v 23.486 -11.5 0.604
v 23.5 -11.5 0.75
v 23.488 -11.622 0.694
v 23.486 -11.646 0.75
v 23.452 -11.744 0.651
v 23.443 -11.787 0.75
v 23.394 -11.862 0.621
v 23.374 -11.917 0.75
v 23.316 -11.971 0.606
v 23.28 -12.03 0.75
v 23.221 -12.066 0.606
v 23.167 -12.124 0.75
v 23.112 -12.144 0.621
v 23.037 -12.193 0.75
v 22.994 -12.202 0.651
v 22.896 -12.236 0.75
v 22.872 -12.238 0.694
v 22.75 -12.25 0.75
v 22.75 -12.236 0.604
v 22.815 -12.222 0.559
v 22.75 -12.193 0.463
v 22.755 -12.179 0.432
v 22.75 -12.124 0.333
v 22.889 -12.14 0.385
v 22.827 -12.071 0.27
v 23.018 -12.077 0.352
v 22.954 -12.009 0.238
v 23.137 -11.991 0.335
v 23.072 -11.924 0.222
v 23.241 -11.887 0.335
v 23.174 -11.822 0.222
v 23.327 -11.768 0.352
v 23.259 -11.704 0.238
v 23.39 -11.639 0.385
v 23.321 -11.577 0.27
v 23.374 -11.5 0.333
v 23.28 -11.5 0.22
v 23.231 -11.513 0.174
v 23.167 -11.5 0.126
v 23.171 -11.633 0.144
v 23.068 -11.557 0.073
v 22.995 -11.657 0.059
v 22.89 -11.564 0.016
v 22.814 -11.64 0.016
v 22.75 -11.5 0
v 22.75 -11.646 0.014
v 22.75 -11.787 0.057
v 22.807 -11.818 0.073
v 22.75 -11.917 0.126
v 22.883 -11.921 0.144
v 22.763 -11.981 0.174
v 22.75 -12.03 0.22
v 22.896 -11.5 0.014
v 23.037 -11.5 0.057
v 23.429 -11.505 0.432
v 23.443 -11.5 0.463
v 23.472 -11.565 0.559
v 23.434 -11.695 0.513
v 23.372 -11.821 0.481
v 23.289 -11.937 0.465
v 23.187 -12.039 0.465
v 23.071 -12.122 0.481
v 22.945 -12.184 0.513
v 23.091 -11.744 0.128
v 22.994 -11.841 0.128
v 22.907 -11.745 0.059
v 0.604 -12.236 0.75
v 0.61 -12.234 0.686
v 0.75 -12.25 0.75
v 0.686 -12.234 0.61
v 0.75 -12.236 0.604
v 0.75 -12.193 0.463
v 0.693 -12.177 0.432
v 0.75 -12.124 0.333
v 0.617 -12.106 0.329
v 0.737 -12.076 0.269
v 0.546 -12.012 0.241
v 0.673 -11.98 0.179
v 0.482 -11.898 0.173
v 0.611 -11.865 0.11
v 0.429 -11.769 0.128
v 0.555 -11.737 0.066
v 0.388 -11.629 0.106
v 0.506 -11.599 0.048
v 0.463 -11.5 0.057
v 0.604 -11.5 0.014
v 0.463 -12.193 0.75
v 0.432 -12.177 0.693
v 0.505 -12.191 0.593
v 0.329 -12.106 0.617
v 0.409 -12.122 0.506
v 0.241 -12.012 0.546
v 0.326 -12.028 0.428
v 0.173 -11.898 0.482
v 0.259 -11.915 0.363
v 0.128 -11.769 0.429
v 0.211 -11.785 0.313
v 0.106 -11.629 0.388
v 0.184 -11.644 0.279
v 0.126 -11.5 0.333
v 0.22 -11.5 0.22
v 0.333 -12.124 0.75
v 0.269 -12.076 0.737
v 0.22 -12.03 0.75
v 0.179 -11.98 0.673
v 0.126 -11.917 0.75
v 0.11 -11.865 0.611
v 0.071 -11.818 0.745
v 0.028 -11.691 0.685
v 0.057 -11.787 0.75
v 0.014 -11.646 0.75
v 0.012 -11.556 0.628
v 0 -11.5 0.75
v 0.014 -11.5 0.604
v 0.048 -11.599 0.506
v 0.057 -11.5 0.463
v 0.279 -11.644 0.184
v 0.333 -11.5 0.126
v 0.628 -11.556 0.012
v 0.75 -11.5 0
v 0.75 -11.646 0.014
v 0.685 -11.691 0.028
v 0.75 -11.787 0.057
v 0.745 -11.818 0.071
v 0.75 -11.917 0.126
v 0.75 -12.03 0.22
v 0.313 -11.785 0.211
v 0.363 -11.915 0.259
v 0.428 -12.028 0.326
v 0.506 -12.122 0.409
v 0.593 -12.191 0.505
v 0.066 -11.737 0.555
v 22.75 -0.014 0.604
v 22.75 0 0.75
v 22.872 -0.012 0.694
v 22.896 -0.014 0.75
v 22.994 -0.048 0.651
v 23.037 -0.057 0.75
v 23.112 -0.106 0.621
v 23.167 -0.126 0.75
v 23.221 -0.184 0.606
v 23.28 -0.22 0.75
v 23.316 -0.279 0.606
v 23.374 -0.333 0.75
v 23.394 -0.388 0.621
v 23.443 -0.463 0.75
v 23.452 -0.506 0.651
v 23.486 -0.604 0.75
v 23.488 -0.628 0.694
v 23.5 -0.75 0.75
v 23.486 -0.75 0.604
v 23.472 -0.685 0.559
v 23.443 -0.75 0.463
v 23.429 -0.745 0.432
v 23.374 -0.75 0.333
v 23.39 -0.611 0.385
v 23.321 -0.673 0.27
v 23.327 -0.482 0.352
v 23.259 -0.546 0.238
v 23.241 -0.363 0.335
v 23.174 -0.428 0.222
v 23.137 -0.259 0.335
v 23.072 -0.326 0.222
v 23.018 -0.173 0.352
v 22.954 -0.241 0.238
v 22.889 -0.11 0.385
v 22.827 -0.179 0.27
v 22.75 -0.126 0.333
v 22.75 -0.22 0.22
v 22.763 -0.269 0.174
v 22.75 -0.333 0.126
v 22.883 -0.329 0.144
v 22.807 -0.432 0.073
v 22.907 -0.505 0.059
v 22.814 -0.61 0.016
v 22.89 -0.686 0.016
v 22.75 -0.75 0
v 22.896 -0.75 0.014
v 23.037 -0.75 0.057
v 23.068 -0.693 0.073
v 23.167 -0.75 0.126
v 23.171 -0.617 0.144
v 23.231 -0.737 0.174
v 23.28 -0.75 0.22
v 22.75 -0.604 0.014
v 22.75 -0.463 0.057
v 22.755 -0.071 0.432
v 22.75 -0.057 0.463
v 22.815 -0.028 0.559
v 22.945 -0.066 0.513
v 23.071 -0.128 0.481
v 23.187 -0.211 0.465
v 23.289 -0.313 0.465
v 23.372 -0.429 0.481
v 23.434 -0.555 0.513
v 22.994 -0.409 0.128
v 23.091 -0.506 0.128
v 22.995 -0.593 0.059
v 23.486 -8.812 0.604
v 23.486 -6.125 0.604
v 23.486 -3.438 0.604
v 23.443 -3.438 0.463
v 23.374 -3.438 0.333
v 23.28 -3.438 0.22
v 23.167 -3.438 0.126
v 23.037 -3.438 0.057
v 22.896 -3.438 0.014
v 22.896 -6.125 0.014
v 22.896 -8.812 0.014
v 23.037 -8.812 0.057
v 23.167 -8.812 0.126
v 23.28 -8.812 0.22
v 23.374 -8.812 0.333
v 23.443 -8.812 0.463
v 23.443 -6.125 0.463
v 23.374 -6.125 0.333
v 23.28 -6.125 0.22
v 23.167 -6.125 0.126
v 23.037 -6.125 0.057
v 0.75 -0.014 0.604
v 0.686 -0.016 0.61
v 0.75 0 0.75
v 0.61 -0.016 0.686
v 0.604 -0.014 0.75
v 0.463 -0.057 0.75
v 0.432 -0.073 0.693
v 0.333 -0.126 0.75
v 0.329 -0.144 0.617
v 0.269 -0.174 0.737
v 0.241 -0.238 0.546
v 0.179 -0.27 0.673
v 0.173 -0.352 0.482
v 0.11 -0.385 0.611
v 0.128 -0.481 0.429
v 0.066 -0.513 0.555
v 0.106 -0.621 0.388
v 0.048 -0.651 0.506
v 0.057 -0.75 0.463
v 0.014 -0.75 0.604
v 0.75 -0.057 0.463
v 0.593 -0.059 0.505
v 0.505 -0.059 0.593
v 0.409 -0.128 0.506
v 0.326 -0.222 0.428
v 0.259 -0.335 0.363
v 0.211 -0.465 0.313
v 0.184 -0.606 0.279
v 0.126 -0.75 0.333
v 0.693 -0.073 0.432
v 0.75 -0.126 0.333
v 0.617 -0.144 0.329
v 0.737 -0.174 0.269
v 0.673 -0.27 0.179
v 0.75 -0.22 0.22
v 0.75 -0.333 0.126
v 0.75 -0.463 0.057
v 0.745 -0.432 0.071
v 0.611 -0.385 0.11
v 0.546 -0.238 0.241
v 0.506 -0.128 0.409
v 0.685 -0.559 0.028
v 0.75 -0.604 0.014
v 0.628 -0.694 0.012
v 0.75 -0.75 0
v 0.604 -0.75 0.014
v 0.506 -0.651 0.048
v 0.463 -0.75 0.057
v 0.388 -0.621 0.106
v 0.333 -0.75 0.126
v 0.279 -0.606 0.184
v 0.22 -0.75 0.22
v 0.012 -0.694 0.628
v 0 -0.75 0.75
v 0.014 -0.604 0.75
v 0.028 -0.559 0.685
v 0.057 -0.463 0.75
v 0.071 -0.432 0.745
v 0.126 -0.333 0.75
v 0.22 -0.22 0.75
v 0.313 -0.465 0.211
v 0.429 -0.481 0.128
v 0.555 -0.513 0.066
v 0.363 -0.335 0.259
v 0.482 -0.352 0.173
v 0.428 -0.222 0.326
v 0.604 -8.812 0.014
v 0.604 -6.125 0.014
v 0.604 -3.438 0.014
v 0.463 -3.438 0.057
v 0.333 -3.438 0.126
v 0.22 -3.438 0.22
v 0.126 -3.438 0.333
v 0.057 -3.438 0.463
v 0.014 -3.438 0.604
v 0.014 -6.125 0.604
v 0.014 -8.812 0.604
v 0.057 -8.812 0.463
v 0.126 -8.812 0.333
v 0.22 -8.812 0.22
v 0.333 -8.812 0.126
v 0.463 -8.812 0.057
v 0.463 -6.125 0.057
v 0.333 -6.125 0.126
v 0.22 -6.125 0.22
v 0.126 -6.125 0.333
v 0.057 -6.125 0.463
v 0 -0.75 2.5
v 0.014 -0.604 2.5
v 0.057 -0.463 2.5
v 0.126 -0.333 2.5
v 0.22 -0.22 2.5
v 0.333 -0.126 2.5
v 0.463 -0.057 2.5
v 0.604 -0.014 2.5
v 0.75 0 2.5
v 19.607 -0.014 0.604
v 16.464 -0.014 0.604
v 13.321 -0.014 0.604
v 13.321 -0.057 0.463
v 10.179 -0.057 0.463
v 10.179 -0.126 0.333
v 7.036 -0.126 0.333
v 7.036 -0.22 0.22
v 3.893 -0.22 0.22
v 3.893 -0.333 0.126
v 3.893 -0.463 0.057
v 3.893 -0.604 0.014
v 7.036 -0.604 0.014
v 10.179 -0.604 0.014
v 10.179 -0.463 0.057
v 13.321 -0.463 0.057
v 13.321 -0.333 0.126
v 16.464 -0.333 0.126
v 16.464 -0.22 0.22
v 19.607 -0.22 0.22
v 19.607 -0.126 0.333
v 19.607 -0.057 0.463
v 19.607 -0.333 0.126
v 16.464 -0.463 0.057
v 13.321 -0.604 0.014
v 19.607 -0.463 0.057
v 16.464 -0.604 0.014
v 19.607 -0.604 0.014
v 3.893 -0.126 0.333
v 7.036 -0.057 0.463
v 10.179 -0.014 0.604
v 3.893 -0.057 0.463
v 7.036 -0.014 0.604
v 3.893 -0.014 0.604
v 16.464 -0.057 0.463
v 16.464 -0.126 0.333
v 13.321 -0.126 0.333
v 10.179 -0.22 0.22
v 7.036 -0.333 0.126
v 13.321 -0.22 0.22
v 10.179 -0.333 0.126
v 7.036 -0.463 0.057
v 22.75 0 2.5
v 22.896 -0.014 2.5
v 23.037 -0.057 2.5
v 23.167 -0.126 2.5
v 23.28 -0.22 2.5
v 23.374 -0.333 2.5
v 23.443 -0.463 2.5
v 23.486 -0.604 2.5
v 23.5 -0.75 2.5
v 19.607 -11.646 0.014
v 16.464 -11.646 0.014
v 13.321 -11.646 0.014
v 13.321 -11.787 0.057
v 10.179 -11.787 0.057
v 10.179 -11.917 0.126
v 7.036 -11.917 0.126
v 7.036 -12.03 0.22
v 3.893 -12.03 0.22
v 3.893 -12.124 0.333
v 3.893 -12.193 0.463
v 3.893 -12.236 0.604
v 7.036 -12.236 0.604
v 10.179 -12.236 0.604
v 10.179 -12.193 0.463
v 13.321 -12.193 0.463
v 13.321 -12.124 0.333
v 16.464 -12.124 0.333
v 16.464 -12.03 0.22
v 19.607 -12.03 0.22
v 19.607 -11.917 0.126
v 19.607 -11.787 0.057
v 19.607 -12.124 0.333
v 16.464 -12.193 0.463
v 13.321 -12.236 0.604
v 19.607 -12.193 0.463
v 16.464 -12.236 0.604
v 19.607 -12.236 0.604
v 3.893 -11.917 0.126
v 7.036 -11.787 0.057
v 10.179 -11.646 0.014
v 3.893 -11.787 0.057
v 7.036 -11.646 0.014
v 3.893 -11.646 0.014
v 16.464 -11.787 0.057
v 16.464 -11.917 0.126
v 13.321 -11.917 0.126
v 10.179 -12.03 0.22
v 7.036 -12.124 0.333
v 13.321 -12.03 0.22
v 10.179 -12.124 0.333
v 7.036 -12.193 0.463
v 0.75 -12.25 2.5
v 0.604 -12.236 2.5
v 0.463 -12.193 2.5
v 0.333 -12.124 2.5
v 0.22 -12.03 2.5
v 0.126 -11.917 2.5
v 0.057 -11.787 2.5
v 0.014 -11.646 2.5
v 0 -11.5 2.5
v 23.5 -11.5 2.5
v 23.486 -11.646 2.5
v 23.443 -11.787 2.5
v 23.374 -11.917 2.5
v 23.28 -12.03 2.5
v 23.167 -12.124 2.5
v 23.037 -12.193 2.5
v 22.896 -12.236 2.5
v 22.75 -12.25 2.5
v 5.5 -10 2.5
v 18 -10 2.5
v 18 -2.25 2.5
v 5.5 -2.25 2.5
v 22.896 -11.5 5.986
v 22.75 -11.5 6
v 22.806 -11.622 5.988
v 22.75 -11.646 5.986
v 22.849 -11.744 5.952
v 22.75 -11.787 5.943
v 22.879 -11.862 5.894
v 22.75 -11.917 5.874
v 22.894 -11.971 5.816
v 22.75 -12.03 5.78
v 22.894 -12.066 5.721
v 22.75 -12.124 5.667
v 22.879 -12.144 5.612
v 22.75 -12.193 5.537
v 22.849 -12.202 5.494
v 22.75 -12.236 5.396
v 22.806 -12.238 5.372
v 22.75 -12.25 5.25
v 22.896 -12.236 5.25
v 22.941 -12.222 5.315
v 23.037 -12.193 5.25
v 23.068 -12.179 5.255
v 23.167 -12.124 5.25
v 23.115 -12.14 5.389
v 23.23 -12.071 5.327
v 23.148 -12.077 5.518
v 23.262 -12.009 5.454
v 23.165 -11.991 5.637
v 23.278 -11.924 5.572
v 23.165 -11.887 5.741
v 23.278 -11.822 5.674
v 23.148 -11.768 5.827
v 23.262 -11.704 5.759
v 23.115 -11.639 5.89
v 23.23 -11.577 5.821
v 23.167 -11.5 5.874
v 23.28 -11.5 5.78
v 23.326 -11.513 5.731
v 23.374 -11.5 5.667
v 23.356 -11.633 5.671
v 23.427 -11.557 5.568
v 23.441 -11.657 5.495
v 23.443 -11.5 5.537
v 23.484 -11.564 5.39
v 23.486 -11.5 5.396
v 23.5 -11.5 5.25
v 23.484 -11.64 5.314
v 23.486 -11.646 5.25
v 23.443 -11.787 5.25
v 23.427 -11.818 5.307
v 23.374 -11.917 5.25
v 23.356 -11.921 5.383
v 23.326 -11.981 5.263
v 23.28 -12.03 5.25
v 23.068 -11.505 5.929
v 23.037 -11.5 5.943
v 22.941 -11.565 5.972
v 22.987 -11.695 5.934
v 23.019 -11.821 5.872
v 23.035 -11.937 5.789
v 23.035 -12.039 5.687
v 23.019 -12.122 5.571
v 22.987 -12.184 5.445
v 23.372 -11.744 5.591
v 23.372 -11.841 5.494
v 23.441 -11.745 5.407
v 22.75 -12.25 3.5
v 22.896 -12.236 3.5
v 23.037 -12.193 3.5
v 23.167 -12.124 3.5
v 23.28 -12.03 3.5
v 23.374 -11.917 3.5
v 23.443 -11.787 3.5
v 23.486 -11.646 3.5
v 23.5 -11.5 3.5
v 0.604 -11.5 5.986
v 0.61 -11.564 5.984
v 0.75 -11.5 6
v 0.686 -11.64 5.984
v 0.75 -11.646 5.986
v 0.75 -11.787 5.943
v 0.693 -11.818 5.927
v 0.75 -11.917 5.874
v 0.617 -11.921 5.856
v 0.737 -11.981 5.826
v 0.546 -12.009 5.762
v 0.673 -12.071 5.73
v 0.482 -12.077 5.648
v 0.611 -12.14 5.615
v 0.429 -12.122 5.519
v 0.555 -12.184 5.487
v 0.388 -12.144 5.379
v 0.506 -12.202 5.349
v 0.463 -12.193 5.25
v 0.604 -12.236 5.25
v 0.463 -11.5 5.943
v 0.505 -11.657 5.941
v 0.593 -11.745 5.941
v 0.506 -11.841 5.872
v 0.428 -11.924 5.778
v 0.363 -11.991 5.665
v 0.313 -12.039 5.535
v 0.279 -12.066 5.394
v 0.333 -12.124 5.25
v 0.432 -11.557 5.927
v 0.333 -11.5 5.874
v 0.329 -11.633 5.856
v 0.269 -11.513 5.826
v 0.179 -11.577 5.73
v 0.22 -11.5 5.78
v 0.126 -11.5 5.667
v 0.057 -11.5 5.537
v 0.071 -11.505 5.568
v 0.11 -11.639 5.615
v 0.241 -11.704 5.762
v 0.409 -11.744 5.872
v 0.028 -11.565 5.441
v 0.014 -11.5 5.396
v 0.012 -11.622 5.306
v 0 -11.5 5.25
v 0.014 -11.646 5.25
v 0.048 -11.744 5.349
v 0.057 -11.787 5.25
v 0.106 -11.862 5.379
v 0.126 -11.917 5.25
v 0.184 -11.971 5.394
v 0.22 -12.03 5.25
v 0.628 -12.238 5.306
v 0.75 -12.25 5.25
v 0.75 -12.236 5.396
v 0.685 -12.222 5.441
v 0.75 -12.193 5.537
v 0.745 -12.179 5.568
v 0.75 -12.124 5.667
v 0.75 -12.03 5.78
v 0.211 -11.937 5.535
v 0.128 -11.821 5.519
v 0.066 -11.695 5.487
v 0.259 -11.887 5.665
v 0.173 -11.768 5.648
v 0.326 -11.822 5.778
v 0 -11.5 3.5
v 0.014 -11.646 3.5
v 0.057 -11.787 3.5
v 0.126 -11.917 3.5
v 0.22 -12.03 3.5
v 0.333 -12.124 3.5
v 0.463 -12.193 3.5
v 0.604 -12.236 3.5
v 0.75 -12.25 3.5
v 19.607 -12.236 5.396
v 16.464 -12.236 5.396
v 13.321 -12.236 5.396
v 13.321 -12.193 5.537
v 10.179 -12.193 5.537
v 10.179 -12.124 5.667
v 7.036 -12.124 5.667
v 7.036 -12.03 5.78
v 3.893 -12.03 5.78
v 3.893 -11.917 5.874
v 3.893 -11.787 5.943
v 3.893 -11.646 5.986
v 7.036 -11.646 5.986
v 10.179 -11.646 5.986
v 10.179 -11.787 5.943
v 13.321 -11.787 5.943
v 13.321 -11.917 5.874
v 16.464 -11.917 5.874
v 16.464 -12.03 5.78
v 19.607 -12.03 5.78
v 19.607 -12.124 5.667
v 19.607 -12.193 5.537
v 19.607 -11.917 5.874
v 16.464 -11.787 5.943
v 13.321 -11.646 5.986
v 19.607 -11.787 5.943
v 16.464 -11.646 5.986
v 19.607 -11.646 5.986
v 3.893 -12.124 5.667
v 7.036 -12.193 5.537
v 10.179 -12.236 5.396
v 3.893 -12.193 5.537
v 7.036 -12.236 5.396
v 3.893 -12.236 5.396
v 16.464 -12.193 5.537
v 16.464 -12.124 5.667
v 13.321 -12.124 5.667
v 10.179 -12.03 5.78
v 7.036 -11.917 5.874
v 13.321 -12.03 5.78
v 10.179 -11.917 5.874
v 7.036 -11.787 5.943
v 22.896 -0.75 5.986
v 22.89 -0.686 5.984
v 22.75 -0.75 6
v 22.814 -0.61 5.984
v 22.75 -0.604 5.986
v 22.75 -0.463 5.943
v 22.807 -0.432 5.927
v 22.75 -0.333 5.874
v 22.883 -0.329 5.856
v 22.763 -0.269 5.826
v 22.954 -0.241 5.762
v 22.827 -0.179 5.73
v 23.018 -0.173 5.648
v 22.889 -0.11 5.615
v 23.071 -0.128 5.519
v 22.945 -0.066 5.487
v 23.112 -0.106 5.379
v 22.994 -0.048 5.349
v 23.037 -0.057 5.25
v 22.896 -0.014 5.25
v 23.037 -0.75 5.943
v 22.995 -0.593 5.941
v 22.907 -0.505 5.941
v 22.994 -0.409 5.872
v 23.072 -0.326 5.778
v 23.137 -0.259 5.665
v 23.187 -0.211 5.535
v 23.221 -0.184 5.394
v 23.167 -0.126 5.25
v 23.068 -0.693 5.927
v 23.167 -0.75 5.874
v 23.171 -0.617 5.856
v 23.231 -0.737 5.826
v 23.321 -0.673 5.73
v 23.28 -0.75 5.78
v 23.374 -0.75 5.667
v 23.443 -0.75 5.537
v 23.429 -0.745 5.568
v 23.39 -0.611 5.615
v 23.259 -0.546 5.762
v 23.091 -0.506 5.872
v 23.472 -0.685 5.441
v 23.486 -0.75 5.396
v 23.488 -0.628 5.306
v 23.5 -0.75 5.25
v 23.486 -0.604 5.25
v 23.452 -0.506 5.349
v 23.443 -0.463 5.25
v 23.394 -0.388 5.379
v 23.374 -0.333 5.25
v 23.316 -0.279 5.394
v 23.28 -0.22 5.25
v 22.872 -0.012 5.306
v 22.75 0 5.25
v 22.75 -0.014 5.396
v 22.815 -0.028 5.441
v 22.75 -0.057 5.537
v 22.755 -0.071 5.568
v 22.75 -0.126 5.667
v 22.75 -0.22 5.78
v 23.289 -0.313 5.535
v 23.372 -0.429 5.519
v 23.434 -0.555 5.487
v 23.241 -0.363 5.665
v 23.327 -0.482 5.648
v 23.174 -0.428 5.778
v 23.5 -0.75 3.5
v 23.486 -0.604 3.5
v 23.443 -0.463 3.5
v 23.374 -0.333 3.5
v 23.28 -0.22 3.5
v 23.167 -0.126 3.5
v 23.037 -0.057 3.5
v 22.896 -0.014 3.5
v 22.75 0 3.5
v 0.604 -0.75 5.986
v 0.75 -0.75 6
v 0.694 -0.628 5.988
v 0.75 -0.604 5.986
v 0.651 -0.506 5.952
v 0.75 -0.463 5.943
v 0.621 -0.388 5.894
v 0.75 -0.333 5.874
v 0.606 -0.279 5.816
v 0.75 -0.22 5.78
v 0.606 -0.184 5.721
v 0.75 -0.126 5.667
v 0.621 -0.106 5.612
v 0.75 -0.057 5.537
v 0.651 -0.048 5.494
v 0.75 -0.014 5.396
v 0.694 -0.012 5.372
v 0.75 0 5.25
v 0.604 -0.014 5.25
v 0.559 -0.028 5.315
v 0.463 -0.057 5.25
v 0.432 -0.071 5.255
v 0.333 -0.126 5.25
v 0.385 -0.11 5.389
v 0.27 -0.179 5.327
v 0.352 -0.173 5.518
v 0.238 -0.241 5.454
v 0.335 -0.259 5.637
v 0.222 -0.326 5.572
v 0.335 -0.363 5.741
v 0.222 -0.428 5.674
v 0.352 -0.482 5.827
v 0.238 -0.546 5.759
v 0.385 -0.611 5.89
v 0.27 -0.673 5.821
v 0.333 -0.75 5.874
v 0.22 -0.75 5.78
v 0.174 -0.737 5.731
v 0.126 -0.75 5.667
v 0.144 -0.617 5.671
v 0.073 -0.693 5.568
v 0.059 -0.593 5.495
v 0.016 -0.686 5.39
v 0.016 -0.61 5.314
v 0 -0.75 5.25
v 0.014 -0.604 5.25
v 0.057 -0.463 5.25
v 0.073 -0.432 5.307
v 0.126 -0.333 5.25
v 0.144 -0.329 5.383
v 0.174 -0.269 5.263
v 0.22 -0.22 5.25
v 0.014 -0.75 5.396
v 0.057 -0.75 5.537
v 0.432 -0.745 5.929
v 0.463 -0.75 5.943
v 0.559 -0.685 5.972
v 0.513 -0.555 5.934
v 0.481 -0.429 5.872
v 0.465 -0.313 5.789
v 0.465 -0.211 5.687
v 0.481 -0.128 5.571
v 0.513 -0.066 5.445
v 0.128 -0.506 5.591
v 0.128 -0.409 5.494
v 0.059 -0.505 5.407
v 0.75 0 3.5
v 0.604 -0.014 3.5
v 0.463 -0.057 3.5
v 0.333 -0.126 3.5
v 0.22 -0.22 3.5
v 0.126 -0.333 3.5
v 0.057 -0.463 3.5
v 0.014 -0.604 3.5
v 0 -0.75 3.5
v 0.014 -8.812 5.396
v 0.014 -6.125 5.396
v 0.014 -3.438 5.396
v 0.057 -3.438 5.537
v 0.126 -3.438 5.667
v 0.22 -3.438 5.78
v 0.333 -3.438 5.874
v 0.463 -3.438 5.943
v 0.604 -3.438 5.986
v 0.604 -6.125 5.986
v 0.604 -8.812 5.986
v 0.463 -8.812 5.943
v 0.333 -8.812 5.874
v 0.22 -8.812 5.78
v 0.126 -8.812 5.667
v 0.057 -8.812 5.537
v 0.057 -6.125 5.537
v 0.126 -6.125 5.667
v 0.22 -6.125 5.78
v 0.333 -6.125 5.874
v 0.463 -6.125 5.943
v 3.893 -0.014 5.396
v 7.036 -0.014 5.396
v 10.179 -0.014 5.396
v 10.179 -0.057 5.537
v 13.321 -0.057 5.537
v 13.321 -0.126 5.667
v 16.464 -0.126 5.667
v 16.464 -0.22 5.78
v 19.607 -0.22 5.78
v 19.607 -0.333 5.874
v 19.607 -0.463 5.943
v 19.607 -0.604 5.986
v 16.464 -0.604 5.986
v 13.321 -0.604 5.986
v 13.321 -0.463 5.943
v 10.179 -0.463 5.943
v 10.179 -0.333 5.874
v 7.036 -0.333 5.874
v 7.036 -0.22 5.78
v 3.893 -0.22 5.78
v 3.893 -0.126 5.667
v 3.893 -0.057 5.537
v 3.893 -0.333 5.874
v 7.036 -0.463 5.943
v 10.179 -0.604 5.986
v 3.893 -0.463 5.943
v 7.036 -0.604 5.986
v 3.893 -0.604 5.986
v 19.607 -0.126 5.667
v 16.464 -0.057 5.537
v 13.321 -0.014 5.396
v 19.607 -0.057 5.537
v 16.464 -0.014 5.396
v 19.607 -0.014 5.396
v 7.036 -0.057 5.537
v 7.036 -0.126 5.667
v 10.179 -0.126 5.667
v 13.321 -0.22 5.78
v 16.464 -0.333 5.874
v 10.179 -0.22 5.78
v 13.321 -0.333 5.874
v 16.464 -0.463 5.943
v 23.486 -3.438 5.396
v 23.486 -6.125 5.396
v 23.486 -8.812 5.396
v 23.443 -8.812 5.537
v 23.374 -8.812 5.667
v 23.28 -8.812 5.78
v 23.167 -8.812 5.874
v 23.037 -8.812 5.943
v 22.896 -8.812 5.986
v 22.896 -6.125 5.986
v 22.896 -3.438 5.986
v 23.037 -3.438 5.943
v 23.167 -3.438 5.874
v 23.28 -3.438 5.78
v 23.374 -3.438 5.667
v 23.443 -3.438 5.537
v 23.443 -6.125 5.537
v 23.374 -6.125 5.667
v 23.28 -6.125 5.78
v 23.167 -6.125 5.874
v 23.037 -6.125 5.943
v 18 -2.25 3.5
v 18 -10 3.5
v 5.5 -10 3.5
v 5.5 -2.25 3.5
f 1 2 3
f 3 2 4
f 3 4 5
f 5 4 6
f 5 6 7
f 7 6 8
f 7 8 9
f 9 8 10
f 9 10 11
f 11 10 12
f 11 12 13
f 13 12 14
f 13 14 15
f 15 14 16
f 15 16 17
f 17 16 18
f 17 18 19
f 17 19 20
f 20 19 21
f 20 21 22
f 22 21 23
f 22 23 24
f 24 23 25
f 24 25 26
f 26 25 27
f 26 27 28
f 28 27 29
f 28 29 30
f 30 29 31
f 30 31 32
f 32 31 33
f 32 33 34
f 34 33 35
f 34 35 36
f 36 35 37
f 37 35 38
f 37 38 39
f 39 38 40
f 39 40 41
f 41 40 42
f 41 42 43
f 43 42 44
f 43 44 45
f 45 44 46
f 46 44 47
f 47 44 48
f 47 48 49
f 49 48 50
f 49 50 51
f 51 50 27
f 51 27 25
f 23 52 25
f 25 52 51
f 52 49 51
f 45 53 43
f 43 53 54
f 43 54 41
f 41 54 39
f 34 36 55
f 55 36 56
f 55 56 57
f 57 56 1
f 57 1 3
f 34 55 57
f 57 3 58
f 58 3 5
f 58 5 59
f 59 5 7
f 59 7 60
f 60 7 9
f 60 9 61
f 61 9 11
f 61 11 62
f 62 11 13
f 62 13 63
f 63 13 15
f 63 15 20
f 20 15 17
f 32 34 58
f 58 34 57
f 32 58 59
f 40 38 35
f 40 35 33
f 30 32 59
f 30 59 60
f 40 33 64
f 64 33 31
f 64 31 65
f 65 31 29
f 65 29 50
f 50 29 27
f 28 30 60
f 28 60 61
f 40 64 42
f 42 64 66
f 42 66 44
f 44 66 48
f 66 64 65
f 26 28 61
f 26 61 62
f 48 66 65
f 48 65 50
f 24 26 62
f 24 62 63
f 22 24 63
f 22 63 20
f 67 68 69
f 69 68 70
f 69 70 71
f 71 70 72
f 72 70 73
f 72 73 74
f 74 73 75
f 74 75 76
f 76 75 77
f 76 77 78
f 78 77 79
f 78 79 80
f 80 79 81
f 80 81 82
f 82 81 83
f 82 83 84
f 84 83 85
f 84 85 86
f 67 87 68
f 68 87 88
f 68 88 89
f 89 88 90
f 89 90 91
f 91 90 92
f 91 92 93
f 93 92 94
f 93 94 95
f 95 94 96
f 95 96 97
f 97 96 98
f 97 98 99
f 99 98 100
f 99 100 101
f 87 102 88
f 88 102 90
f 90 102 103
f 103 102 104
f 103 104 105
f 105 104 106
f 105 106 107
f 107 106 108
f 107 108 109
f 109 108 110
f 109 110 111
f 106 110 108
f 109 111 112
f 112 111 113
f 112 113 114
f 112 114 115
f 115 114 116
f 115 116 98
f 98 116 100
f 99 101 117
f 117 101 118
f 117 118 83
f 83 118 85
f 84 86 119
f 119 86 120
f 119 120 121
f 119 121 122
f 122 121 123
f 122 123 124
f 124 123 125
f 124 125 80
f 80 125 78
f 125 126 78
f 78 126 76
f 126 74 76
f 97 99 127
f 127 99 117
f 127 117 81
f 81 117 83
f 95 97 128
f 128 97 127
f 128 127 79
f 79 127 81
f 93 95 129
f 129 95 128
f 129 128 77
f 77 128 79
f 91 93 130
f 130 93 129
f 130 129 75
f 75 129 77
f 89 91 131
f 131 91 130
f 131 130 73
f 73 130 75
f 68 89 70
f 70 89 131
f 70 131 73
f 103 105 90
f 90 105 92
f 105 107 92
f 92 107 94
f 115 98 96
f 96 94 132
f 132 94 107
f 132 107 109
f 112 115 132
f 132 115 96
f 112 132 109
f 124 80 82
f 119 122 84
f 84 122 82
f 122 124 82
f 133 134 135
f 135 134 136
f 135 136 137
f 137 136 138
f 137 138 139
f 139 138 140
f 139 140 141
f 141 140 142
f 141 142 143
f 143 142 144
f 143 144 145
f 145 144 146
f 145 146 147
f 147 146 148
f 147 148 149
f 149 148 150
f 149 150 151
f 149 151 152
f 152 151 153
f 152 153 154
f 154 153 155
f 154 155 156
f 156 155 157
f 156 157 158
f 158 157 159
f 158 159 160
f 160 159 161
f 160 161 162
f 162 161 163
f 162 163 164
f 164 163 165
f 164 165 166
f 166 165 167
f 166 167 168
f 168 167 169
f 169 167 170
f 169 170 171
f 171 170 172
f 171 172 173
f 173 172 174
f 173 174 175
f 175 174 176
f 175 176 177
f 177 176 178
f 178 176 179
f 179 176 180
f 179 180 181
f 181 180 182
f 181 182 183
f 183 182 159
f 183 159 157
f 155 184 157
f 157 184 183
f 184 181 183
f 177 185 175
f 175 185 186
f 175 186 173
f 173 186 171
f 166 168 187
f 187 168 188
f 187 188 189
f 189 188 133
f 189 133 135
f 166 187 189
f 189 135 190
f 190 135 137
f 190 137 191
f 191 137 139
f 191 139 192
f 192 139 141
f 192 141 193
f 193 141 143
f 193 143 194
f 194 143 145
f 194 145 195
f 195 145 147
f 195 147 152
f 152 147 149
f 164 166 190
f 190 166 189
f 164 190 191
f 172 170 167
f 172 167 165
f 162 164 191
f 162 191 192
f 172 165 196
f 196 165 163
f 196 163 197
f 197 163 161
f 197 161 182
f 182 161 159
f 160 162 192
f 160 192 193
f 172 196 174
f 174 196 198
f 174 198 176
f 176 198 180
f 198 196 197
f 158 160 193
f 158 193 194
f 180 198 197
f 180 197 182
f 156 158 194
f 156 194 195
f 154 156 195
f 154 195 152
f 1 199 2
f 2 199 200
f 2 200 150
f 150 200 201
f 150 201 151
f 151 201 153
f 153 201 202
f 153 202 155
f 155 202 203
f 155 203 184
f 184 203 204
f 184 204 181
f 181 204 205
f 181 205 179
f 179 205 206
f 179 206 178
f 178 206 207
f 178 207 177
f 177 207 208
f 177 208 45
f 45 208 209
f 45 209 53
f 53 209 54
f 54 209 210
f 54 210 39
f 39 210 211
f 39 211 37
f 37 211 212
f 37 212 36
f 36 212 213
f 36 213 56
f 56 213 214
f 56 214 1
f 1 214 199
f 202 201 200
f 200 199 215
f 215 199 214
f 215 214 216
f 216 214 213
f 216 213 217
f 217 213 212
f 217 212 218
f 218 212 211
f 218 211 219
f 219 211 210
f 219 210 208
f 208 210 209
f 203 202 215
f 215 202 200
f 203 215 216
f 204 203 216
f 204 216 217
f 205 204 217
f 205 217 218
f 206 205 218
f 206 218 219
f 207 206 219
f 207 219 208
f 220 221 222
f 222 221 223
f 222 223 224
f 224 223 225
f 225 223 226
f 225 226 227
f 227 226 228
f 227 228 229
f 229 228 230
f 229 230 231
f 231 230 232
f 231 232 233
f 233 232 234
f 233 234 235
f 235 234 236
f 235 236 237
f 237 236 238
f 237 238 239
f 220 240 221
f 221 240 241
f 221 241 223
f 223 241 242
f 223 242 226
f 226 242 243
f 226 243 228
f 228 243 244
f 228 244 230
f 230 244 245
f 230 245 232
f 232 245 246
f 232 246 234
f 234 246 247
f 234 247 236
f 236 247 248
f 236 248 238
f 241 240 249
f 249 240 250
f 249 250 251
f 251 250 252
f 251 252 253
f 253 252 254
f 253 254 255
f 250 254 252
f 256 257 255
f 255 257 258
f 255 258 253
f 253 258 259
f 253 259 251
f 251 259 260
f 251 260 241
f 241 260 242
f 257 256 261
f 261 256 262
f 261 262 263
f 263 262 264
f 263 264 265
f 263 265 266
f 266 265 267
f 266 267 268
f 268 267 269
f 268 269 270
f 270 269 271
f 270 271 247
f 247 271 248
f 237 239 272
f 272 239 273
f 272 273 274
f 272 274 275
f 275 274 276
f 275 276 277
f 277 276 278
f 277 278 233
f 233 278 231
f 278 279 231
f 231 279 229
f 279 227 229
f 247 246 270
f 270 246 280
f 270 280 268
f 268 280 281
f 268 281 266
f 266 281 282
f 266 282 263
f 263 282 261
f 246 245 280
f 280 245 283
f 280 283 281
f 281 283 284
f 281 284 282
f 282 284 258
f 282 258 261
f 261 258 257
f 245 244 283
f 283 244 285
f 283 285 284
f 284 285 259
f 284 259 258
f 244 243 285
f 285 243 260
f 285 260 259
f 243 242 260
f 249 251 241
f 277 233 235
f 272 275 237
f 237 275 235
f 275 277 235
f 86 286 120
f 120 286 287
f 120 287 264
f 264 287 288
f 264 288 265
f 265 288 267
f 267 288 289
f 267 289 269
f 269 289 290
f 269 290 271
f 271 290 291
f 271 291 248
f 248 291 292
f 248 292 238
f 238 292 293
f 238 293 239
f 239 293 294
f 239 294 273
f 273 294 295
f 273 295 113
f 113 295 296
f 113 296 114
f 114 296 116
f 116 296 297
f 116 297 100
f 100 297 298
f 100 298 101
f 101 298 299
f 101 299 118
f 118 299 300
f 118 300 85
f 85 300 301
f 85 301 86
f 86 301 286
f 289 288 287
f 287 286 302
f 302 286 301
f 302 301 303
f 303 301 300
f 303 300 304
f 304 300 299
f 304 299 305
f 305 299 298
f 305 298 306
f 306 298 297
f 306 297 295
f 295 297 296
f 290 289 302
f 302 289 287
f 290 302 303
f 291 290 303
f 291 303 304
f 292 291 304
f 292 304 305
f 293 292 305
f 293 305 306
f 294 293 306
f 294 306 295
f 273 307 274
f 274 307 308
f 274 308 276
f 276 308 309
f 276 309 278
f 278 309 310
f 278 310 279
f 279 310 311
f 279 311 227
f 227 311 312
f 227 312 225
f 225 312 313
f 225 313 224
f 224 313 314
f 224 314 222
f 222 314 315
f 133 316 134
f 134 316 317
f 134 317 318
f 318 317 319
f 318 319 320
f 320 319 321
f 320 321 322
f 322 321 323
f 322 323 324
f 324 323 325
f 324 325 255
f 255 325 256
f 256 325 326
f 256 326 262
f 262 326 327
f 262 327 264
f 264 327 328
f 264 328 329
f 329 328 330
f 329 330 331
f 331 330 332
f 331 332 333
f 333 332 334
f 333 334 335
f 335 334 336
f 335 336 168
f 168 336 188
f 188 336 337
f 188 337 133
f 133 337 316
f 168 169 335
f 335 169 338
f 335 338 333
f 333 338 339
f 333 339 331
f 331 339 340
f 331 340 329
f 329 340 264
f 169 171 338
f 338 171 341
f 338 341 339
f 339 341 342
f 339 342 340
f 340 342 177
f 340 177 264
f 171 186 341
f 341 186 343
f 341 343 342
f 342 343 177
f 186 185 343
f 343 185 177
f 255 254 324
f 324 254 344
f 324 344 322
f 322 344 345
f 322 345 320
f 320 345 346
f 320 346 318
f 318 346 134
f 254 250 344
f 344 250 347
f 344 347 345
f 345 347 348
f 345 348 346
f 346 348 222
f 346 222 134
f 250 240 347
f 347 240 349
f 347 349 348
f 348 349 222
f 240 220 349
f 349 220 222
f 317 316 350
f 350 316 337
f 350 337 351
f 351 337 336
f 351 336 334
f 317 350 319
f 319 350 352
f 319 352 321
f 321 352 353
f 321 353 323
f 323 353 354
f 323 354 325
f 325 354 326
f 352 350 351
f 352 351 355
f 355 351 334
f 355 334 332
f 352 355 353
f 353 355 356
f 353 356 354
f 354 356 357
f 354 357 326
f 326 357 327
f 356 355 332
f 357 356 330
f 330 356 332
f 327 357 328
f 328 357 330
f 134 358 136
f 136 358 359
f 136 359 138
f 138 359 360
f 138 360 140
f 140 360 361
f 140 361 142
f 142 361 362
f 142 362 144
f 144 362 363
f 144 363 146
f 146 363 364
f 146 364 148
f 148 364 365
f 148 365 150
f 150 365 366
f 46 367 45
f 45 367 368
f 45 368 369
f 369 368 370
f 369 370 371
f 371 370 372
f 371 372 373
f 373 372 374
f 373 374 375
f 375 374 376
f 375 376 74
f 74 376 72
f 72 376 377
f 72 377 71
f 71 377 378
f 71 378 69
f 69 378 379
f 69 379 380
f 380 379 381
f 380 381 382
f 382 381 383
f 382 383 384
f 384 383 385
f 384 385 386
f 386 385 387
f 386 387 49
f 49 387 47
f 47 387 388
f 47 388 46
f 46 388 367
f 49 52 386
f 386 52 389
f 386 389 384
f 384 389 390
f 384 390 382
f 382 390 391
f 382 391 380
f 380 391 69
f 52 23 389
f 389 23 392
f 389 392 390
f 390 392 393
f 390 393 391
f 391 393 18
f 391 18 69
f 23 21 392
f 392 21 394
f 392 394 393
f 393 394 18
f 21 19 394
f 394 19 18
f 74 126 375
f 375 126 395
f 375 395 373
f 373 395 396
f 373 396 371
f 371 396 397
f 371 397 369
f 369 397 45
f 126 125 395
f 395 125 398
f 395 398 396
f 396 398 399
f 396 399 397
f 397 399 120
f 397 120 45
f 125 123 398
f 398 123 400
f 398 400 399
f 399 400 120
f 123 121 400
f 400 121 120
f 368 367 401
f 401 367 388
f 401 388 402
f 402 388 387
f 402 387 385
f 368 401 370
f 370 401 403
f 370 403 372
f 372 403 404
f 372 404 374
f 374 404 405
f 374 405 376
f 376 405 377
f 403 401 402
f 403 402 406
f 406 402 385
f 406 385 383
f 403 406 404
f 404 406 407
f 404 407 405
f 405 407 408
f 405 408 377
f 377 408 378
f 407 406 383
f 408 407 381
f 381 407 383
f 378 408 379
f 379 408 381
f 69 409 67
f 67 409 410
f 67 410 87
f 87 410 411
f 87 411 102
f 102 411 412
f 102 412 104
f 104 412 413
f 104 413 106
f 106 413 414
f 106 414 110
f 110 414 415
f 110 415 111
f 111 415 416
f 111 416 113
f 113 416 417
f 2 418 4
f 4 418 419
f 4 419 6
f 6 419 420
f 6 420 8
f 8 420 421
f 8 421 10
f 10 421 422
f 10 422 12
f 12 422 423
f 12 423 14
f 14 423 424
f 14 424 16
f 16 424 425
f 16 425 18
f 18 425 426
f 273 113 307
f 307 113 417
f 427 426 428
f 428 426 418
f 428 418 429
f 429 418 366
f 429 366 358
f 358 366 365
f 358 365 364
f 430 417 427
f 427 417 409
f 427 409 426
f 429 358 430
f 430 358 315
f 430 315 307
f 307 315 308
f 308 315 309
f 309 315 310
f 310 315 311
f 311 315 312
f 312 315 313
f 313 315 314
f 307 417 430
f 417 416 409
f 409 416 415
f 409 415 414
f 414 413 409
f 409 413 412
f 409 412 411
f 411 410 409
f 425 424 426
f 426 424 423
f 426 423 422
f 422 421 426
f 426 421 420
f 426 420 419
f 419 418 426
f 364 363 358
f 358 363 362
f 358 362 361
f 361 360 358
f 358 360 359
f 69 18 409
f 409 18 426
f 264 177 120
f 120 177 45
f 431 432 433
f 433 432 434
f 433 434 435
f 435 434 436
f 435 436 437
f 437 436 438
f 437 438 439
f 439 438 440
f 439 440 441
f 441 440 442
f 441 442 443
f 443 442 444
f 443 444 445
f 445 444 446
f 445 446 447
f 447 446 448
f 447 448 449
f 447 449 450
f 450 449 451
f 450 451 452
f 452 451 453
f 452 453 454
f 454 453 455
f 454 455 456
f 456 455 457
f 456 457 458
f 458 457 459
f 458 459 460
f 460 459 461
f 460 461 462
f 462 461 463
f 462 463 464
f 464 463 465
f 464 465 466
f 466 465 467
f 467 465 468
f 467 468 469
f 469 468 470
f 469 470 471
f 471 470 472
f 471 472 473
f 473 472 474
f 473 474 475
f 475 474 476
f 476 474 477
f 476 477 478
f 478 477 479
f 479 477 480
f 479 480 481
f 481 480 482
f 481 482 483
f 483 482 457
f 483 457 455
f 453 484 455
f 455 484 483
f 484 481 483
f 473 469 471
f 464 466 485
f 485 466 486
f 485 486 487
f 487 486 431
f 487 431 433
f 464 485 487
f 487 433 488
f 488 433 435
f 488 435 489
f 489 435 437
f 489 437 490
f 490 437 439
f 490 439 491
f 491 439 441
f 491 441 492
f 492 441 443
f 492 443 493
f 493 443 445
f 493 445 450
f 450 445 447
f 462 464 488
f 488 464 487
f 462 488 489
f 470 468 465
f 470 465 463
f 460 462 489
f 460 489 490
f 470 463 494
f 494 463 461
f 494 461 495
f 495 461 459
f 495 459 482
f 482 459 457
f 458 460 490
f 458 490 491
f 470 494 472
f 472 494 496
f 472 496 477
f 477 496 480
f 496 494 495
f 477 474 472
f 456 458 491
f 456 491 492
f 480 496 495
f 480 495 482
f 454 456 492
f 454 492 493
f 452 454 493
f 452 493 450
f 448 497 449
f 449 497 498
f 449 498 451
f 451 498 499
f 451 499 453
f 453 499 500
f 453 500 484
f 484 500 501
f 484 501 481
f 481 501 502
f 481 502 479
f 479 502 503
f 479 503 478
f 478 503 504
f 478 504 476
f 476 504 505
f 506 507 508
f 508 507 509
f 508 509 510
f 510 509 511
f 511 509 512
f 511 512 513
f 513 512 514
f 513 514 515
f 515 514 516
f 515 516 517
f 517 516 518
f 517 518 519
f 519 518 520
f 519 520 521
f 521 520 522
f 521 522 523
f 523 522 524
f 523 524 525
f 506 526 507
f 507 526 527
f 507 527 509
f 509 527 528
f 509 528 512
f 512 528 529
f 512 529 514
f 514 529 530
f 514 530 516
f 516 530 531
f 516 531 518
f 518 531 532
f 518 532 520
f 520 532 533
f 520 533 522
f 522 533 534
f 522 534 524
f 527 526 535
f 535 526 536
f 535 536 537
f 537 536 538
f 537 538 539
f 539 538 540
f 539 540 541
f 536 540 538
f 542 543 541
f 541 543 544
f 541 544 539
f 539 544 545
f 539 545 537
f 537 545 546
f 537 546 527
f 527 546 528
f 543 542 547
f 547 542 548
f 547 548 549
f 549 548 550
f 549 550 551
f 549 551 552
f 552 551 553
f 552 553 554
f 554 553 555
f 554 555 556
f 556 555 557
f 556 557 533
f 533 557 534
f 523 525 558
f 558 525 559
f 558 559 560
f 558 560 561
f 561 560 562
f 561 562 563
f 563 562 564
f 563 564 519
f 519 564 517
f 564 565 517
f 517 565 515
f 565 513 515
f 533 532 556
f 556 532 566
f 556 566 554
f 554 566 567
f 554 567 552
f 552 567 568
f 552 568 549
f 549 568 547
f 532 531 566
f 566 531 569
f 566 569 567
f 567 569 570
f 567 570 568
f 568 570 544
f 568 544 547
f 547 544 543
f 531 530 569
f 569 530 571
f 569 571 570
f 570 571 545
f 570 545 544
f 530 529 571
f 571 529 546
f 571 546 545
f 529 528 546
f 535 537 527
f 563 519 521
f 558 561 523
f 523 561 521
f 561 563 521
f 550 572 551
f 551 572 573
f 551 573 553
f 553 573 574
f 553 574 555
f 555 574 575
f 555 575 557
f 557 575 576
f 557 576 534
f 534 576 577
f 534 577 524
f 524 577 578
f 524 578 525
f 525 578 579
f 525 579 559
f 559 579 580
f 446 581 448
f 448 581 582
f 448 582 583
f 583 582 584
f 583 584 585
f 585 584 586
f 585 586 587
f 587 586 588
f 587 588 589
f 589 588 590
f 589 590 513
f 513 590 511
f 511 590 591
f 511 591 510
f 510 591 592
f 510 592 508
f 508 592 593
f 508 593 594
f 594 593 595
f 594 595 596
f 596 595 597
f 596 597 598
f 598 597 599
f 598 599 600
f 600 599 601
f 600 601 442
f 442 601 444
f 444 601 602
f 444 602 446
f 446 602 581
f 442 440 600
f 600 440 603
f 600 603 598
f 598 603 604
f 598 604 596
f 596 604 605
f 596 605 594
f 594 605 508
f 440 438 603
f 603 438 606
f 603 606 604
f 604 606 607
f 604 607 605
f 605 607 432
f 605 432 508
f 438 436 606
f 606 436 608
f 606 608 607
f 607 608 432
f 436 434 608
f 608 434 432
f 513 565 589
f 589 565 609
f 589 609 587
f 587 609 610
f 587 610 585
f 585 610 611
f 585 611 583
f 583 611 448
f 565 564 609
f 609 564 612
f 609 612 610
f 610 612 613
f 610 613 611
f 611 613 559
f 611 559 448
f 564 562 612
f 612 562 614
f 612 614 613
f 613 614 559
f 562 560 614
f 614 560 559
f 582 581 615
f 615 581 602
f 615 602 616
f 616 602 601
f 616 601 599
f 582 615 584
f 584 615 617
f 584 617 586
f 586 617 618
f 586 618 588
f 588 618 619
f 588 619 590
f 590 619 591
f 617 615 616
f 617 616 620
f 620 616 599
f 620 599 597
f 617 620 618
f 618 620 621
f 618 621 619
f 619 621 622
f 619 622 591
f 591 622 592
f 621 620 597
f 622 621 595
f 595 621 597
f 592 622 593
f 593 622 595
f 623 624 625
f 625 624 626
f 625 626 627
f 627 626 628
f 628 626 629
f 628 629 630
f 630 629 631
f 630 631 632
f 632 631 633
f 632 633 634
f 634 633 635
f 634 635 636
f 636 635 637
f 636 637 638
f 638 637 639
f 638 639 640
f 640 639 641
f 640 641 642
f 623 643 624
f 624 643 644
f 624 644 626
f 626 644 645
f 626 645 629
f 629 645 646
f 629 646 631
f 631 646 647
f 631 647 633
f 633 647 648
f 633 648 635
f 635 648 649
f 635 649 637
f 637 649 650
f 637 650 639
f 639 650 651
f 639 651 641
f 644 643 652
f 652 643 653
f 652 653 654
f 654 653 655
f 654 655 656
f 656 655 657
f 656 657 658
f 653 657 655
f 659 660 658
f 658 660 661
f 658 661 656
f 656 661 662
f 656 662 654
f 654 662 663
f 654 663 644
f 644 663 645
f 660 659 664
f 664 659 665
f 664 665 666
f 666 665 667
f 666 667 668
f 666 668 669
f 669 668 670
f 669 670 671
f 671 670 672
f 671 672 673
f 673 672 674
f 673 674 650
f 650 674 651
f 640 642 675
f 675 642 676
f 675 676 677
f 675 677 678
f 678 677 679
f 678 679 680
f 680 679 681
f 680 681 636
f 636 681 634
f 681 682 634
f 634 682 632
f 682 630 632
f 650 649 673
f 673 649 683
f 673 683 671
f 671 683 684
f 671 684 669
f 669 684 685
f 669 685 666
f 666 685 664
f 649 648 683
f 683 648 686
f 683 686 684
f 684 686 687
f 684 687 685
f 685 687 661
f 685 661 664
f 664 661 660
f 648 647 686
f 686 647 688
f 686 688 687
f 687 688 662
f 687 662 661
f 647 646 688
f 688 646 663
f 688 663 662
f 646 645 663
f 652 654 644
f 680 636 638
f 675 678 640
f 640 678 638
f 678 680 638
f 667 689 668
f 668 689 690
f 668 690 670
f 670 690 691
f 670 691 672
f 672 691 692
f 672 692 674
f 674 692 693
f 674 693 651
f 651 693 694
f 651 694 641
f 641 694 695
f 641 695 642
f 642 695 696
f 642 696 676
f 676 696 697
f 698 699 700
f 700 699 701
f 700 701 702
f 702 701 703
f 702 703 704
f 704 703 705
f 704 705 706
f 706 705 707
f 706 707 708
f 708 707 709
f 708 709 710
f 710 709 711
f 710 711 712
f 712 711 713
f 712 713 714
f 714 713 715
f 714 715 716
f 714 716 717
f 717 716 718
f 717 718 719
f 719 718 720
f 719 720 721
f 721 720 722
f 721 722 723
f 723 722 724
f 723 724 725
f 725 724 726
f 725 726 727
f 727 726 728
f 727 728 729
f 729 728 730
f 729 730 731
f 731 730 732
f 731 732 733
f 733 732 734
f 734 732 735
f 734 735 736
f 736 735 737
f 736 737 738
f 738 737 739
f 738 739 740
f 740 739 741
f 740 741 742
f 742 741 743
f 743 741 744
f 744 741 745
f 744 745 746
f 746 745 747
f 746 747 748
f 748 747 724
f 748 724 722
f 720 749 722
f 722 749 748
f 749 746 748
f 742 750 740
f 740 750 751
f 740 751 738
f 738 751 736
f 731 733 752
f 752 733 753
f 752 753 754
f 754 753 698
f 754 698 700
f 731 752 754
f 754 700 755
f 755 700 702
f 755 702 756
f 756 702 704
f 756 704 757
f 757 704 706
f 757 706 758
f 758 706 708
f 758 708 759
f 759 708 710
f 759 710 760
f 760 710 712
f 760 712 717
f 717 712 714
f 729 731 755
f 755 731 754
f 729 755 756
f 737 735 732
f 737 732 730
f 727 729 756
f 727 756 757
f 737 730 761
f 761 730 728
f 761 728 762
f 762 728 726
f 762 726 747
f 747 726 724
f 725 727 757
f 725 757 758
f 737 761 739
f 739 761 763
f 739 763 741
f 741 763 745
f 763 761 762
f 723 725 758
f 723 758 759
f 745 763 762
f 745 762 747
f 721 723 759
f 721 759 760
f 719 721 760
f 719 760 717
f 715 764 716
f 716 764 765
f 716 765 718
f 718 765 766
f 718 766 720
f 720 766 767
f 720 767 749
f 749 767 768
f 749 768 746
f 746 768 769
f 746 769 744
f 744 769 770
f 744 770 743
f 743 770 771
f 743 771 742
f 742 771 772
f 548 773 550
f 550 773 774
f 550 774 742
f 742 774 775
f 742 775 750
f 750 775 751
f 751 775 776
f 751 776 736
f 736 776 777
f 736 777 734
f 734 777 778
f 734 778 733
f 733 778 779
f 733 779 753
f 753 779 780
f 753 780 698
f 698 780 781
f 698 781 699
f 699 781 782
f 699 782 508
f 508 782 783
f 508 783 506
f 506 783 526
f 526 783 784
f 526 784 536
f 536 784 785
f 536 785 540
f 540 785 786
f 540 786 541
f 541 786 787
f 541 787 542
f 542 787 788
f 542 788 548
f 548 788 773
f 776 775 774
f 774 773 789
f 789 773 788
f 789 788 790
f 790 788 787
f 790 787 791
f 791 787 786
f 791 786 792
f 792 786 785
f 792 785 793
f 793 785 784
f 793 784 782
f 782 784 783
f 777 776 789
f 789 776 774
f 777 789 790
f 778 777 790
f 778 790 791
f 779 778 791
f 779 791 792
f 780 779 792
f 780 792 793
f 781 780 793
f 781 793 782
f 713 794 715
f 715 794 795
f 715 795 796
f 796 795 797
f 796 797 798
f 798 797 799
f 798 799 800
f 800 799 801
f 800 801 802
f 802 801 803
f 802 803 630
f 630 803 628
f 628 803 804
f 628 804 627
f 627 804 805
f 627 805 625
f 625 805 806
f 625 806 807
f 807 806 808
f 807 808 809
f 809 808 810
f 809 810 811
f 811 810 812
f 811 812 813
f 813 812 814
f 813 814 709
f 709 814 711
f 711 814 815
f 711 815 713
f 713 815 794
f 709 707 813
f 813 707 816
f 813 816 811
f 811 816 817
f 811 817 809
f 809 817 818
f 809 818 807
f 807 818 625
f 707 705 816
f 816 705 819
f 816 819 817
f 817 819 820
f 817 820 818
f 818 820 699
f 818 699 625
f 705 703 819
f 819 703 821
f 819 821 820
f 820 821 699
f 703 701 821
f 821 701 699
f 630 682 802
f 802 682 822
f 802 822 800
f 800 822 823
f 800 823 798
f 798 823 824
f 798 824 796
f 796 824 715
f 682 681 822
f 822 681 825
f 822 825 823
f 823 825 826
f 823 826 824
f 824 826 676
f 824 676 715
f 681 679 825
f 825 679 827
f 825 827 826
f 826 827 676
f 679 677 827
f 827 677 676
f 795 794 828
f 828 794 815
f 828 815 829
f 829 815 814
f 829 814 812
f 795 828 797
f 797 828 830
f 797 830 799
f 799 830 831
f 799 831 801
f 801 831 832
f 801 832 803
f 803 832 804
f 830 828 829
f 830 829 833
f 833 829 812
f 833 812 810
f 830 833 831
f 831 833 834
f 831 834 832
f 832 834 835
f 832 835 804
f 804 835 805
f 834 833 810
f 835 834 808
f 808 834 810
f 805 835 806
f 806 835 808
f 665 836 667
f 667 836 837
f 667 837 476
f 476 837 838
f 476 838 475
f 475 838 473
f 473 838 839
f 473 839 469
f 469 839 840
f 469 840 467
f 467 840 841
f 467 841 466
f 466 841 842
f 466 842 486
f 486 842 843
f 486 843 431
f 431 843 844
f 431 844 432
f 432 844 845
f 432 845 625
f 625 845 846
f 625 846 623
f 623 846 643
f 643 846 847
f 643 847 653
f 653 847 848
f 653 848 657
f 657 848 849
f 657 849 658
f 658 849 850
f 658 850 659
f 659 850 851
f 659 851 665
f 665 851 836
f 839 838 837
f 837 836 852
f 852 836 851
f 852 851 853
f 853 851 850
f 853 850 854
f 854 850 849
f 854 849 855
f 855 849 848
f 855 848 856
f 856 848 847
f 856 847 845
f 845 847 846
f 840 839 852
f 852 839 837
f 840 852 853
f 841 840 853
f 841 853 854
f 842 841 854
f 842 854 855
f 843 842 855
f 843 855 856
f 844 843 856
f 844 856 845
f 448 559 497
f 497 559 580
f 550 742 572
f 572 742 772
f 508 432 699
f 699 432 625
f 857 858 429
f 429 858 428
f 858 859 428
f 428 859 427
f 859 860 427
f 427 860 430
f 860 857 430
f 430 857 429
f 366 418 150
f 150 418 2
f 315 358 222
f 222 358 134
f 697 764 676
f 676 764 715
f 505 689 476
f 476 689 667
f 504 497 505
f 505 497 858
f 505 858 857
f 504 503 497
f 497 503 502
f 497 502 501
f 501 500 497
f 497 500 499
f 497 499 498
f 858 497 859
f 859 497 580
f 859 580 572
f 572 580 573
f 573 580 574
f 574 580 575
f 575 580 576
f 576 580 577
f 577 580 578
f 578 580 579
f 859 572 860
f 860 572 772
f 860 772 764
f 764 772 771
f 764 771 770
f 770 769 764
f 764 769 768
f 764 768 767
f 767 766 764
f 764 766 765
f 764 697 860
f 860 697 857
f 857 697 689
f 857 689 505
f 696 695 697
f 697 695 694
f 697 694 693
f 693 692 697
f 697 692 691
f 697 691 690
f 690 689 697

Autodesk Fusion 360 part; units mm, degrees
sketch "Sketch1" plane through (0, 0, 0) normal (0, 0, 1) x (1, 0, 0)
  line L0 (0, 0) -> (23.5, 0)
  line L1 (0, 0) -> (0, -12.25)
  line L2 (0, -12.25) -> (23.5, -12.25)
  line L3 (23.5, 0) -> (23.5, -12.25)
  line L4 (0, 0) -> (5.5, 0)
  line L5 (23.5, -12.25) -> (18, -12.25)
  line L6 (18, -10) -> (5.5, -10)
  line L7 (5.5, -10) -> (5.5, -2.25)
  line L8 (5.5, -2.25) -> (18, -2.25)
  line L9 (18, -2.25) -> (18, -10)
  dimension "d1" = 23.5
  dimension "d2" = 12.25
  dimension "d3" = 5.5
  dimension "d4" = 2.25
  dimension "d5" = 5.5
  dimension "d6" = 2.25
extrude "Extrude1" add sketch "Sketch1" along normal blind 6 contours L6 L7 L8 L9 makes body 1
extrude "Extrude2" add sketch "Sketch1" along normal blind 6 separate body makes body 2
sketch "Sketch2" plane through (23.5, 0, 0) normal (1, 0, 0) x (0, 1, 0)
  line L0 (-12.25, 0) -> (0, 0)
  line L1 (0, 0) -> (0, 6)
  line L2 (0, 6) -> (-12.25, 6)
  line L3 (-12.25, 6) -> (-12.25, 0)
  line L4 (0, 3.5) -> (-2.25, 3.5)
  line L5 (-12.25, 2.5) -> (-10, 2.5)
  line L6 (-12.25, 2.5) -> (0, 2.5)
  line L7 (0, 2.5) -> (0, 3.5)
  line L8 (0, 3.5) -> (-12.25, 3.5)
  line L9 (-12.25, 3.5) -> (-12.25, 2.5)
  dimension "d12" = 2.25
  dimension "d13" = 2.5
  dimension "d14" = 2.25
extrude "Extrude3" cut sketch "Sketch2" against normal blind 29 contours L1 L3 L4 L5 L6 L7 L8 L9 bodies 1 2 makes body 4 at (1.8333, -4.8333, 3.5) makes body 3 at (9.6667, -4.8333, 3.5)
extrude "Extrude4" add 1 faces at (13.8333, -7.4167, 2.5) along direction (0, 0, 1) blind 2 on bodies 1 bodies 1 2 3 4
fillet "Fillet1" radius 0.75 16 edges at (0, 0, 4.75) (11.75, 0, 6) (0, -6.125, 6) (11.75, -12.25, 6) (0, -12.25, 4.75) (23.5, -12.25, 4.75) (23.5, -6.125, 6) (23.5, 0, 4.75) (11.75, 0, 0) (0, 0, 1.25) (0, -6.125, 0) (0, -12.25, 1.25) (11.75, -12.25, 0) (23.5, -12.25, 1.25) (23.5, -6.125, 0) (23.5, 0, 1.25) on bodies 1
